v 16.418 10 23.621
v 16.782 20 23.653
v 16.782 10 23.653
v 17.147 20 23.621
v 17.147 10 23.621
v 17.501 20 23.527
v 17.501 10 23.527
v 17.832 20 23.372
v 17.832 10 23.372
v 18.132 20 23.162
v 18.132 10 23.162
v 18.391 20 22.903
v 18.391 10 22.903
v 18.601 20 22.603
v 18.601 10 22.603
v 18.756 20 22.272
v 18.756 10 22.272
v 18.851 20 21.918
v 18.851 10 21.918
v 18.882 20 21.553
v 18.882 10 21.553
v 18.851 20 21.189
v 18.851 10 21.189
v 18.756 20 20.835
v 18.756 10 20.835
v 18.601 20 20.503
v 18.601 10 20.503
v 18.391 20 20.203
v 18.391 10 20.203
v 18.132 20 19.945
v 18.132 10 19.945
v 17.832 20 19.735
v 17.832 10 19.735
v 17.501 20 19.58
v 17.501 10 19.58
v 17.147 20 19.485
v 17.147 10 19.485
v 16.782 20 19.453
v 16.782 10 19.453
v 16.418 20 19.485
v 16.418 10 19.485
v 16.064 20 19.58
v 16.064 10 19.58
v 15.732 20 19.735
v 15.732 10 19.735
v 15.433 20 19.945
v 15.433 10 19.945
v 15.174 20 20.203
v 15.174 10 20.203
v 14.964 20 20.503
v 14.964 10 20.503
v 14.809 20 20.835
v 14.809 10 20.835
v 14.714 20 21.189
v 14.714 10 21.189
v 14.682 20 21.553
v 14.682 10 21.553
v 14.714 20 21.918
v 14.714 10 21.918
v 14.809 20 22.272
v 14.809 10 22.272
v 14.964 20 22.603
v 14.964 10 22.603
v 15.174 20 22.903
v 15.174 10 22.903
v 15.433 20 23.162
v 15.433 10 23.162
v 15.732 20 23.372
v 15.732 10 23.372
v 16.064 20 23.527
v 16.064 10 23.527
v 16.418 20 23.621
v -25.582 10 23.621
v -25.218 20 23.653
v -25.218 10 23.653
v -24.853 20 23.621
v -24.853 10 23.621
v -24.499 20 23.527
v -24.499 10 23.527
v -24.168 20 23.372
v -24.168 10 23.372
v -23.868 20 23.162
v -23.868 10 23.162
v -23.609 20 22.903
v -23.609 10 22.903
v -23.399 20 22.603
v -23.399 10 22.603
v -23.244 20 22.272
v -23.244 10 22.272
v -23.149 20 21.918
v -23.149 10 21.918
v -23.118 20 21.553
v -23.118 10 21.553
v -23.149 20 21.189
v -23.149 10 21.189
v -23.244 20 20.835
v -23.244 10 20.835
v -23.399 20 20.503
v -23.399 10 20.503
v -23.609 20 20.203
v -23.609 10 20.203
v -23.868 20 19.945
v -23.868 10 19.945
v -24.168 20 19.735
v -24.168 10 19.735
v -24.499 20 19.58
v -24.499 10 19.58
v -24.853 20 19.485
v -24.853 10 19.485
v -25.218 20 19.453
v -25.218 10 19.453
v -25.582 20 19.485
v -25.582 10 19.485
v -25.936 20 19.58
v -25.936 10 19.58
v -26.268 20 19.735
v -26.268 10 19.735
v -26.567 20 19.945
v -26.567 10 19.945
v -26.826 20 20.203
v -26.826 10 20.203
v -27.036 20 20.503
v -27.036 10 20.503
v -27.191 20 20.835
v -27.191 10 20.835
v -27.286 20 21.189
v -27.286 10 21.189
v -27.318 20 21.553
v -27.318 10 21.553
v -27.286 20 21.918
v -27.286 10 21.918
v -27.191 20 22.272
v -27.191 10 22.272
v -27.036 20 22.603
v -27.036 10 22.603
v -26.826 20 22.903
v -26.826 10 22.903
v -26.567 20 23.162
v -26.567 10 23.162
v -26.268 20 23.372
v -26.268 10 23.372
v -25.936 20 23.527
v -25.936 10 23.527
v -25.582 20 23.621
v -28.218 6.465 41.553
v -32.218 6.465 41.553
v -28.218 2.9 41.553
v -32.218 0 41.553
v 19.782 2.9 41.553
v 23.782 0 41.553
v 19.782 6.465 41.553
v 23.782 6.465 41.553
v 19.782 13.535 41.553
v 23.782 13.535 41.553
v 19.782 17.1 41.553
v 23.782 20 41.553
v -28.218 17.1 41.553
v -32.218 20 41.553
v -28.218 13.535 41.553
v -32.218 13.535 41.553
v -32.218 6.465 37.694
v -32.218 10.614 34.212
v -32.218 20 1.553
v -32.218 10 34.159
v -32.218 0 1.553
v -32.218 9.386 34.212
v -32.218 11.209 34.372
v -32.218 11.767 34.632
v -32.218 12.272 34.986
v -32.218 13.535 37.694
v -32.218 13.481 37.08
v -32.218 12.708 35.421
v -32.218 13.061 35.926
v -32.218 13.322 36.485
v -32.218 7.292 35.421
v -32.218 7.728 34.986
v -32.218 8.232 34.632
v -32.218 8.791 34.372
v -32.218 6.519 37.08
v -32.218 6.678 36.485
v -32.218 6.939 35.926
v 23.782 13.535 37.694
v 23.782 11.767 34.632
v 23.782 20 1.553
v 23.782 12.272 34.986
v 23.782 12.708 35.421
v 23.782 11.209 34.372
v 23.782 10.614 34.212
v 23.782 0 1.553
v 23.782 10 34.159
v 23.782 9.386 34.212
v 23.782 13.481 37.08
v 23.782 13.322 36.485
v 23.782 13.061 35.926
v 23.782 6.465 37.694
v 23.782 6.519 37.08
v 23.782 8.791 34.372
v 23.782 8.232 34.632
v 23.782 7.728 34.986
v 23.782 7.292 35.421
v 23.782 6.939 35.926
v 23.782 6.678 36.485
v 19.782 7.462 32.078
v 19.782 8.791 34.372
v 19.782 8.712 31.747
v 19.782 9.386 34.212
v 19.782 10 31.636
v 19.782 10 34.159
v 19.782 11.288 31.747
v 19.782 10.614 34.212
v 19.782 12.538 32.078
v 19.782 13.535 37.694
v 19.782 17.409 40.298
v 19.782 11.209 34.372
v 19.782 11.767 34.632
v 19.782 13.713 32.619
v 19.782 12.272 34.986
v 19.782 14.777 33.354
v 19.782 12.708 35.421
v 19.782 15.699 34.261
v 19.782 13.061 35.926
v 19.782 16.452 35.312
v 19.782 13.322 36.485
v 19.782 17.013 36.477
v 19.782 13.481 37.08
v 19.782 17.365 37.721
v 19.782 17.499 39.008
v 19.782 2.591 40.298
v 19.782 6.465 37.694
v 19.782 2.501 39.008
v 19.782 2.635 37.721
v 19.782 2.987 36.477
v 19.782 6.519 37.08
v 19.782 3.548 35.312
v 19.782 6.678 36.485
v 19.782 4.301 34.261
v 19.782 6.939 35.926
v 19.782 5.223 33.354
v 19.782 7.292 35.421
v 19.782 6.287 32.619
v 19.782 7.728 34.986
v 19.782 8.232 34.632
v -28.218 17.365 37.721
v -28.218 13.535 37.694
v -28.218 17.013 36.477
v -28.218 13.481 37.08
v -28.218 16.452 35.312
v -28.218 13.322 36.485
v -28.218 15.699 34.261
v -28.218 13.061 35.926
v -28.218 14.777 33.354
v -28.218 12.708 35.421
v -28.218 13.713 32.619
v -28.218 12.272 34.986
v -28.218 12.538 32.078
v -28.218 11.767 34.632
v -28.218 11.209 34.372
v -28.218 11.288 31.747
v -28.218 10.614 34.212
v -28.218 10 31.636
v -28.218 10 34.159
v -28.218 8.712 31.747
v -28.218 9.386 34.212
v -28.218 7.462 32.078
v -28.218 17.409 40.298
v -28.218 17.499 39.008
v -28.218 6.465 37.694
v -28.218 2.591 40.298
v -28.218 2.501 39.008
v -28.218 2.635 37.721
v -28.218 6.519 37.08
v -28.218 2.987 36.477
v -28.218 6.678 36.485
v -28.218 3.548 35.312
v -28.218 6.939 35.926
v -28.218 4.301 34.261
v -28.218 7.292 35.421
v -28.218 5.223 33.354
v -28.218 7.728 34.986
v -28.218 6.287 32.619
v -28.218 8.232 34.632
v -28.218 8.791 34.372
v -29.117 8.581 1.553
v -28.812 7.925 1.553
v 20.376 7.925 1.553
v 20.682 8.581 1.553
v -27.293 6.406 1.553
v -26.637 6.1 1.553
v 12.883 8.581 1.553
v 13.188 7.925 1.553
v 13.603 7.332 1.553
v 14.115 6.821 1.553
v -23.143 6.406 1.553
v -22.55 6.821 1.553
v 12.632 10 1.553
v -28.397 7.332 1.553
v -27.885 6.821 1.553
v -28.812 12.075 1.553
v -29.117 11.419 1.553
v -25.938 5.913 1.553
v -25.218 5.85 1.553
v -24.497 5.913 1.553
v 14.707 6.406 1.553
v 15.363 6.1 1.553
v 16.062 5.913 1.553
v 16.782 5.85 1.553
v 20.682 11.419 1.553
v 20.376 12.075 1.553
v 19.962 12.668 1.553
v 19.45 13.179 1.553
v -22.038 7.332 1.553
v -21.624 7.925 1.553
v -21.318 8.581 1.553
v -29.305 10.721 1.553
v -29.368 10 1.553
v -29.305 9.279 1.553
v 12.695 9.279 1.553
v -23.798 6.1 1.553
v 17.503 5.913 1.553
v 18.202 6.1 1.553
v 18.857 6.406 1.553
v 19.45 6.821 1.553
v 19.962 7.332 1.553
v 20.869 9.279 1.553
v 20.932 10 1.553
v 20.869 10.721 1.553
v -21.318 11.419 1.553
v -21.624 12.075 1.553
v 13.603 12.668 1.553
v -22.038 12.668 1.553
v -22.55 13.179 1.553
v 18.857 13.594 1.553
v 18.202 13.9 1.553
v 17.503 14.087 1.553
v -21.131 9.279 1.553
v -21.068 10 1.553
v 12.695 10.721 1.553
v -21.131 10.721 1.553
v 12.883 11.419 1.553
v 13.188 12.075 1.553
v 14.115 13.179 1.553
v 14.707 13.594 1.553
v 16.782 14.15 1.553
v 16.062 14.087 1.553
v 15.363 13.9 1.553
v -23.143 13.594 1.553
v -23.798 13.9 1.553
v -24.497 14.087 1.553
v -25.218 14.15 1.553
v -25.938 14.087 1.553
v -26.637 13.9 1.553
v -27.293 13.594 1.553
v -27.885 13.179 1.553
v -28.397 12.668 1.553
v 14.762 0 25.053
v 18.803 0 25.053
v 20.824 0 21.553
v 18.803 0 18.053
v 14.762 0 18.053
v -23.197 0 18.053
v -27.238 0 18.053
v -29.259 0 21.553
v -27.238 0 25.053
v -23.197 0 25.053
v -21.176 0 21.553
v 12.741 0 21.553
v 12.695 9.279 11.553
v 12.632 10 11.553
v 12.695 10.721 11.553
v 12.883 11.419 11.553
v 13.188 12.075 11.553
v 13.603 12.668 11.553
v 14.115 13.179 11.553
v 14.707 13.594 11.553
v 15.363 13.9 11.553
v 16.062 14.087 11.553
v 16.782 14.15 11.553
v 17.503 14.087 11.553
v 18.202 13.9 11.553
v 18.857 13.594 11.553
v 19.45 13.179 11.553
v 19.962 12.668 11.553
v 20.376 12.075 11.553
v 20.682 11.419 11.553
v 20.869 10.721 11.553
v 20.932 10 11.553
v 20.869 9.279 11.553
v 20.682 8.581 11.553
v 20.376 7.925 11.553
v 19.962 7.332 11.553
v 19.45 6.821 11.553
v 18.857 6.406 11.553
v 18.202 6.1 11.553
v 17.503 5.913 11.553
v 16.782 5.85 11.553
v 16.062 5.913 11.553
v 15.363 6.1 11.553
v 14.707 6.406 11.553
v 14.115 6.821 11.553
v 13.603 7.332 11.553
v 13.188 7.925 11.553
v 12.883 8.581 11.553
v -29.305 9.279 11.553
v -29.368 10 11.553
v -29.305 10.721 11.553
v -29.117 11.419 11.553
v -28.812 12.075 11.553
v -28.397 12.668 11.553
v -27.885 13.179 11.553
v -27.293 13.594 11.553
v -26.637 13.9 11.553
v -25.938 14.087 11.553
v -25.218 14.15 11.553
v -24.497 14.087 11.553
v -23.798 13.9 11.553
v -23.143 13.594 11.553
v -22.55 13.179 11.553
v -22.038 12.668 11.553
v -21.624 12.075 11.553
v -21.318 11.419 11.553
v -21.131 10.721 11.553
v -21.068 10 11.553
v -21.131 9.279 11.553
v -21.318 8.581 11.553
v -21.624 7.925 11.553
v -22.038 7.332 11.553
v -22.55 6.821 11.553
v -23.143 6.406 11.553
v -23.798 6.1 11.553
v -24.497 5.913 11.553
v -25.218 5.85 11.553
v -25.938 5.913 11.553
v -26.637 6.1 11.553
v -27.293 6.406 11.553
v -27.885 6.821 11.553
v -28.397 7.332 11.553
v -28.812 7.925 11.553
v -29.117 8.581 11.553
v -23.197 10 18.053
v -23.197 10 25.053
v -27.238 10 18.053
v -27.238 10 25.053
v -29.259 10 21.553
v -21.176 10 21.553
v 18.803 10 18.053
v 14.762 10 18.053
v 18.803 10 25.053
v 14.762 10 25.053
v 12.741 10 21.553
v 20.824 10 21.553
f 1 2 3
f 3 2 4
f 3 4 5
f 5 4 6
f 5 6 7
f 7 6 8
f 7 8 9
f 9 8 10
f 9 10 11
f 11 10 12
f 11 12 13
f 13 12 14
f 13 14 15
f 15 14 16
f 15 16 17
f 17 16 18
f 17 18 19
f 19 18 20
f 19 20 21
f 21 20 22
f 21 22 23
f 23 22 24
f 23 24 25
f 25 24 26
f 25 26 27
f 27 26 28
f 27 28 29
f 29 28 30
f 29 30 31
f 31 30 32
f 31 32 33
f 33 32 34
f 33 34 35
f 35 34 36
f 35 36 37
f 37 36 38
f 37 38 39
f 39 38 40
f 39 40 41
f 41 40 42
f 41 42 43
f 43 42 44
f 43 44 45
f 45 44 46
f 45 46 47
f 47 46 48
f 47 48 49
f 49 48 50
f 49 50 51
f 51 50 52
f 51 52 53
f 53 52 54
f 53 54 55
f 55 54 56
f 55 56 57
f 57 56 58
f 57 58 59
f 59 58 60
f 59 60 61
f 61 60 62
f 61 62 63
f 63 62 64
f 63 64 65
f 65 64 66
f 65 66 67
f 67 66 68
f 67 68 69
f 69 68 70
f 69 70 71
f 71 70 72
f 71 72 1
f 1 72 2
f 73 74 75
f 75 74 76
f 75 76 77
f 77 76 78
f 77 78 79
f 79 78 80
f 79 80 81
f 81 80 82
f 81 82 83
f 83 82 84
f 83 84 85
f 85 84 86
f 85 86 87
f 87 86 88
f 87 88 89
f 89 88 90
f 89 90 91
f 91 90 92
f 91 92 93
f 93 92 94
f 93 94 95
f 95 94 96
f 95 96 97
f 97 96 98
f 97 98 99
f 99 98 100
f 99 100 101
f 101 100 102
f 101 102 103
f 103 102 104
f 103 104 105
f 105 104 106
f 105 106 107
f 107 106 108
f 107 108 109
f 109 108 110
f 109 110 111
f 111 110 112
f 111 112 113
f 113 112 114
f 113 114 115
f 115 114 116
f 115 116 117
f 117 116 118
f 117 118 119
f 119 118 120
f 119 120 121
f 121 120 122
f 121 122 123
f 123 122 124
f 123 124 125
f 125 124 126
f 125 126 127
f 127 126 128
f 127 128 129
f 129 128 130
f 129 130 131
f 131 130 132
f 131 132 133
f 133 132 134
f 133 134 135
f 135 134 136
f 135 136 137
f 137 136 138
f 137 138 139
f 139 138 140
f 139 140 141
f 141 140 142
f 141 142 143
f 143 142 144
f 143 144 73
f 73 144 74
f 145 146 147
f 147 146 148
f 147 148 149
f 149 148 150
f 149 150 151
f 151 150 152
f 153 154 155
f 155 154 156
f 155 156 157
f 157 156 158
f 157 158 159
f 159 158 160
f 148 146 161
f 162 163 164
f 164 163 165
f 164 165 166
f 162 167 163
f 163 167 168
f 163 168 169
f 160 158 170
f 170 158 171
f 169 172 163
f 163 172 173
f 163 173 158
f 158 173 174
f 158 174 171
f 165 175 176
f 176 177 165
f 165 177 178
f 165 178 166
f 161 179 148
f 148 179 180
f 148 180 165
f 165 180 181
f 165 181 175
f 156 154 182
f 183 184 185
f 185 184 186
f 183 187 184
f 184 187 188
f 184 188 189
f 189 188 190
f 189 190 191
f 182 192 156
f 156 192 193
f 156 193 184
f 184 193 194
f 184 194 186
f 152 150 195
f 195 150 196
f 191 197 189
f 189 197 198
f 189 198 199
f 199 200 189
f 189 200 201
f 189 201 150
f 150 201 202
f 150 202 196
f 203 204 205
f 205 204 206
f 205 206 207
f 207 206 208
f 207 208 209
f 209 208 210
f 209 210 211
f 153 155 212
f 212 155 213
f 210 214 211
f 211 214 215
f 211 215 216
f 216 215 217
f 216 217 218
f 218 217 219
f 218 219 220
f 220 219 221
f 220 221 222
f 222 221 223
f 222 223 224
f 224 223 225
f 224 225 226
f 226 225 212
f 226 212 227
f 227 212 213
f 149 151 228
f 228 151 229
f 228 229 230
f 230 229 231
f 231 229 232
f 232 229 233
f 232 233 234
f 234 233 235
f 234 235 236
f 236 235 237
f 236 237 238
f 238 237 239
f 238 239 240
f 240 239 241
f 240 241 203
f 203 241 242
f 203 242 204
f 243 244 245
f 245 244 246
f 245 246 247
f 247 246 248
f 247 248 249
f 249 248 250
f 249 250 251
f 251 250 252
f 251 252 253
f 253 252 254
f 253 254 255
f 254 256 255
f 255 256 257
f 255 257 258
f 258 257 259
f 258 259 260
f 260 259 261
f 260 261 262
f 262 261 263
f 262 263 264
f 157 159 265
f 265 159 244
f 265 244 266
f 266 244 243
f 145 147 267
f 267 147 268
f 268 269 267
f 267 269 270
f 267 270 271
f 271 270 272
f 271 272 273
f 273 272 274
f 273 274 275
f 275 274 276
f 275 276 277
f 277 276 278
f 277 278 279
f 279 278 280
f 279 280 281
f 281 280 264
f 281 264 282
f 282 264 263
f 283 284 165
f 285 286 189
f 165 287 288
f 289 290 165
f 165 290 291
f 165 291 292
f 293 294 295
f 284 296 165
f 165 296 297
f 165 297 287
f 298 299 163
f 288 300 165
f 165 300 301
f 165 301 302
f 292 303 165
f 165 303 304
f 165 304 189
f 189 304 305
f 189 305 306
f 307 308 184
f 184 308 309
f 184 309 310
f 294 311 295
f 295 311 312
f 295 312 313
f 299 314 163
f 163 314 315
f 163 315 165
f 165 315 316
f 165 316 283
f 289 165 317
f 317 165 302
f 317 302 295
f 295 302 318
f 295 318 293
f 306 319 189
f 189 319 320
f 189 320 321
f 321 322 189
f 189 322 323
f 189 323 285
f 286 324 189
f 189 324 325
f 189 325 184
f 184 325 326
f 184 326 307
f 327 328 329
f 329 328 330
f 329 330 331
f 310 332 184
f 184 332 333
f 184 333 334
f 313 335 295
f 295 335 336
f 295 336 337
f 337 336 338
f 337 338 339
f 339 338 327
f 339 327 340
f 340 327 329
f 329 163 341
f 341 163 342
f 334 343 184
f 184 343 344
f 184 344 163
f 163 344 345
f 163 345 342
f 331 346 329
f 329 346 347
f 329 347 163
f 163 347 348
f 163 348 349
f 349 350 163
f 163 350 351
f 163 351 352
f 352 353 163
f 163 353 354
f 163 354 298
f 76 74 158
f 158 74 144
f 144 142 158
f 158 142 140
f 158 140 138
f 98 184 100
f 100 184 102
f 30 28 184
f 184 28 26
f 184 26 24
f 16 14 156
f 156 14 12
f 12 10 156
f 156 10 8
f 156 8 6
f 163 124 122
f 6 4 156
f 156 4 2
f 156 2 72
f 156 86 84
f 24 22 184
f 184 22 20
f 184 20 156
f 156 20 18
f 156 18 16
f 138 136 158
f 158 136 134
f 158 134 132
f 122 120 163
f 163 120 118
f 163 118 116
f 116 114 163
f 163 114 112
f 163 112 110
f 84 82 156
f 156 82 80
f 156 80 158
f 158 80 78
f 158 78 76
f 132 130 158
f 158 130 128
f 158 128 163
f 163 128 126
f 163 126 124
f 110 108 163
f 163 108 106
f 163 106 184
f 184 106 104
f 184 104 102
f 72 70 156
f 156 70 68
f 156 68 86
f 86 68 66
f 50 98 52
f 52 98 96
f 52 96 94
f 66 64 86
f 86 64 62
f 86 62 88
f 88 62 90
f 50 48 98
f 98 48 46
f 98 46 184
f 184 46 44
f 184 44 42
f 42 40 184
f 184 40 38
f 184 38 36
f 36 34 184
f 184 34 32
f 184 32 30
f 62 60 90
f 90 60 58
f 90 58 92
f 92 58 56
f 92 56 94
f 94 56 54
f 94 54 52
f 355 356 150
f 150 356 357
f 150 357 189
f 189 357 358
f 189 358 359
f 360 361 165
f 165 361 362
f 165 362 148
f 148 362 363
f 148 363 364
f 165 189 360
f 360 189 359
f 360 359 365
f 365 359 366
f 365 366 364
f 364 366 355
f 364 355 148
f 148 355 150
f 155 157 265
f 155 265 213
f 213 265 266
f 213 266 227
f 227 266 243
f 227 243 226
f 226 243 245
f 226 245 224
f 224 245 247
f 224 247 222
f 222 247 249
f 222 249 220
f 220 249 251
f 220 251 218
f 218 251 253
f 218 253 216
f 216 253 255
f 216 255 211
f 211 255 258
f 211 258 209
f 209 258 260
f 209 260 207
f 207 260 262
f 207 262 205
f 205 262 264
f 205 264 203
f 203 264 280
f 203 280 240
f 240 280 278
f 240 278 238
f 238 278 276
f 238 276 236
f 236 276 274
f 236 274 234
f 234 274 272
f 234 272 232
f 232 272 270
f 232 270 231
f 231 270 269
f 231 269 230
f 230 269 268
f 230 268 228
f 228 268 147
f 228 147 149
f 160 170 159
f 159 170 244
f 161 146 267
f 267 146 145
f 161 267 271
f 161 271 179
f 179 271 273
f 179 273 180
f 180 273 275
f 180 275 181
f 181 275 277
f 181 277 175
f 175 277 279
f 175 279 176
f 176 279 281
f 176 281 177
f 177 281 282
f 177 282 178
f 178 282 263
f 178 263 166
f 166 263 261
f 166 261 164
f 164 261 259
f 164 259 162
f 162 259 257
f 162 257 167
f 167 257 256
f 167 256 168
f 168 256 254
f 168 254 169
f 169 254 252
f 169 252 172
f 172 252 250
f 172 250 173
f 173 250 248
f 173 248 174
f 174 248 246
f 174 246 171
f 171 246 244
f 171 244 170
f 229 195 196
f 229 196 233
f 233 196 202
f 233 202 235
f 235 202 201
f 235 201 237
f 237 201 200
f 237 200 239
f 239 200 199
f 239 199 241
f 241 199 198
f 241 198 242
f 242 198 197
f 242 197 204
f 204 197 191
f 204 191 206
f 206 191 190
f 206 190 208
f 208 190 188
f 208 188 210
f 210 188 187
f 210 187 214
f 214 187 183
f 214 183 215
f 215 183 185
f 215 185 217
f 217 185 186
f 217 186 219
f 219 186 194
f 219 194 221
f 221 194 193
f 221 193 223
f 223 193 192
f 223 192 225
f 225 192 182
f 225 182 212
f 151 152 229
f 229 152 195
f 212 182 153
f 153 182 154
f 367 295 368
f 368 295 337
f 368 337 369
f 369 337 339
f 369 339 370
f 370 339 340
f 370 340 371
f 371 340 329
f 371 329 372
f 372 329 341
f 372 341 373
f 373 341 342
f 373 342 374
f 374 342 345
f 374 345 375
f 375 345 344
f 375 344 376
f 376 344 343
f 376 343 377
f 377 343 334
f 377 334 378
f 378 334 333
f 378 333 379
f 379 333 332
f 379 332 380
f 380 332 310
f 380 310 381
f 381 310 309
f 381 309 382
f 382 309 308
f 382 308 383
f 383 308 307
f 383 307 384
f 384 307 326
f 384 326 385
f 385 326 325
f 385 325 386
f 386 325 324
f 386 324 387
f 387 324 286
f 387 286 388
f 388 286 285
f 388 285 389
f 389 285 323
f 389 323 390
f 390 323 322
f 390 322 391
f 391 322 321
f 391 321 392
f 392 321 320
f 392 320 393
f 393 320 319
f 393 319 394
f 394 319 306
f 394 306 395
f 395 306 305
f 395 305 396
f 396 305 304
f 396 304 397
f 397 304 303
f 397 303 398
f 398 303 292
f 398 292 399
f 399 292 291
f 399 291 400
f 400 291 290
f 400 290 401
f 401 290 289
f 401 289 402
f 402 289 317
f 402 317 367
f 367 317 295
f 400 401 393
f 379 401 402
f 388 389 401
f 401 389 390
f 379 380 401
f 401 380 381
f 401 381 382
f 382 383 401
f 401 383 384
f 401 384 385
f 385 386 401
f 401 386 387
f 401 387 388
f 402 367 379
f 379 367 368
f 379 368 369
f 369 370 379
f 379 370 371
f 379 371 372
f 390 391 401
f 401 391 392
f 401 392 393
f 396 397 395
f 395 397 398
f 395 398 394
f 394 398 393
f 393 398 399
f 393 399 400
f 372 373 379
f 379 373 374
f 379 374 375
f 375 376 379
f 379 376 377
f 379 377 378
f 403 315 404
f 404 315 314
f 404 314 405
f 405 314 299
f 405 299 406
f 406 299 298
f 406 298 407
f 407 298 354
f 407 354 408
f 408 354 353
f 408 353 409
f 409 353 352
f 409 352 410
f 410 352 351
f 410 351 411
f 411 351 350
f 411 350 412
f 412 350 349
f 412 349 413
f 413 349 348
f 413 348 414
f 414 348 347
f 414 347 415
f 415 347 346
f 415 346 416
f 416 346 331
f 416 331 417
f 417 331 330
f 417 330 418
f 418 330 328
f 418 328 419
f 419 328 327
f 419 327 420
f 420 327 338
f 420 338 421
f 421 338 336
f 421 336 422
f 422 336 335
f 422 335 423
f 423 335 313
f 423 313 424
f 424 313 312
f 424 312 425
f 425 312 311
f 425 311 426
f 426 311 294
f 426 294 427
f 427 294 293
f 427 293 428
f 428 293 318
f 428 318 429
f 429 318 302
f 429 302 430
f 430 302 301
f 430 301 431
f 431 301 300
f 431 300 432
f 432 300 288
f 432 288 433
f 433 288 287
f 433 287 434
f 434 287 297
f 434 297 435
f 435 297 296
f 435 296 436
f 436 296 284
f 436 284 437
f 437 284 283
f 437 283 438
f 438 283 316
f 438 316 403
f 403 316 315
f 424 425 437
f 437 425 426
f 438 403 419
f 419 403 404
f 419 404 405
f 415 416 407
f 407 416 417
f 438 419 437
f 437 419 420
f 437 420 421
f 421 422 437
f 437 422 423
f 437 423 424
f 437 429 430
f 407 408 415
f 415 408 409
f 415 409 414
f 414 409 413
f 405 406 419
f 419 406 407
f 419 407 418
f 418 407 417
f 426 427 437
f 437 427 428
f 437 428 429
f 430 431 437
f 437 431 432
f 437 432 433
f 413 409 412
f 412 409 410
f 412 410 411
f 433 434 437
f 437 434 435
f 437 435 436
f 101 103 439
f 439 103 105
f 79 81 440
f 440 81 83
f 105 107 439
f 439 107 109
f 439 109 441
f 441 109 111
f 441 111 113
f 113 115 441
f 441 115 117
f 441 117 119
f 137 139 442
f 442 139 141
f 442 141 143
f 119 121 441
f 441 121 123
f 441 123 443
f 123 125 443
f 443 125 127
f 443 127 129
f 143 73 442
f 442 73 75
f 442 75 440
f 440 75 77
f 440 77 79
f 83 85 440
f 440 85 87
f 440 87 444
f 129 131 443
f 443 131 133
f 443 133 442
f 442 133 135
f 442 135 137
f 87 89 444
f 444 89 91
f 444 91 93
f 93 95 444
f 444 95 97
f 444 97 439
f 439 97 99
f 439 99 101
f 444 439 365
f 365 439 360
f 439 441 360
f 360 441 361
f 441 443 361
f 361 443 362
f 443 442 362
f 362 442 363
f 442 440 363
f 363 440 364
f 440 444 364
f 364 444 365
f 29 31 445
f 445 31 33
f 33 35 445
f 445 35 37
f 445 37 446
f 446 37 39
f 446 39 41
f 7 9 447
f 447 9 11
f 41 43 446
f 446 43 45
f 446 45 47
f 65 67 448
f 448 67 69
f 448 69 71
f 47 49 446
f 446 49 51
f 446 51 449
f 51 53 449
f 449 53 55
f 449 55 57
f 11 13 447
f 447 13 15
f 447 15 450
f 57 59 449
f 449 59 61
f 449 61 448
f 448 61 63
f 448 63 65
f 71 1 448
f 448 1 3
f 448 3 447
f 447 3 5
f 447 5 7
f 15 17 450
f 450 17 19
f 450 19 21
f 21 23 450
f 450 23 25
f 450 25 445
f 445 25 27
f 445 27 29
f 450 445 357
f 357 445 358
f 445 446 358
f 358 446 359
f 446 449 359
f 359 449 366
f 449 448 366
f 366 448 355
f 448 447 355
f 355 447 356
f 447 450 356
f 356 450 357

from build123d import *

# Parameters (mm, degrees)
SKETCH_1_W               = 56
SKETCH_1_H               = 40
EXTRUDE_1_DEPTH          = 20
SKETCH_2_R               = 7.5
CUT_EXTRUDE_1_DEPTH      = 48
CUT_EXTRUDE_2_DEPTH      = 70.503098378
CUT_EXTRUDE_2_DEPTH_BACK = 48
SKETCH_5_R               = 4.15
CUT_EXTRUDE_3_DEPTH      = 10
SKETCH_6_R               = 2.1
CUT_EXTRUDE_4_DEPTH      = 57.255246128
CUT_EXTRUDE_5_DEPTH      = 10


with BuildPart() as part:
    # Эскиз1 → Бобышка-Вытянуть1 (new body)
    with BuildSketch(Plane(origin=(0, 0, 0), x_dir=(1, 0, 0), z_dir=(0, 1, 0))):
        with Locations((-4.217573352, -21.553347449)):
            Rectangle(SKETCH_1_W, SKETCH_1_H)
    extrude(amount=EXTRUDE_1_DEPTH)

    # Эскиз2 → Вырез-Вытянуть1 (cut)
    with BuildSketch(Plane.ZY.offset(28.217573352)):
        with Locations((39.13573239, 10)):
            Circle(SKETCH_2_R)
    extrude(amount=-CUT_EXTRUDE_1_DEPTH, mode=Mode.SUBTRACT)

    # Эскиз4 → Вырез-Вытянуть2 (cut, two sides: drawn at the far end of the back side and taken through both)
    with BuildSketch(Plane.ZY.offset(-19.782426648).offset(-CUT_EXTRUDE_2_DEPTH_BACK)):
        with BuildLine():
            Line((37.693734465, 13.535), (41.553347449, 13.535))
            Line((41.553347449, 13.535), (41.553347449, 6.465))
            Line((41.553347449, 6.465), (37.693734465, 6.465))
            ThreePointArc((37.693734465, 6.465), (34.158734465, 10), (37.693734465, 13.535))
        make_face()
    extrude(amount=CUT_EXTRUDE_2_DEPTH + CUT_EXTRUDE_2_DEPTH_BACK, mode=Mode.SUBTRACT)

    # Эскиз5 → Вырез-Вытянуть3 (cut)
    with BuildSketch(Plane(origin=(0, 0, 1.553347449), x_dir=(-1, 0, 0), z_dir=(0, 0, -1))):
        with Locations((-16.782426648, 10)):
            Circle(SKETCH_5_R)
        with Locations((25.217573352, 10)):
            Circle(SKETCH_5_R)
    extrude(amount=-CUT_EXTRUDE_3_DEPTH, mode=Mode.SUBTRACT)

    # Эскиз6 → Вырез-Вытянуть4 (cut, through all)
    with BuildSketch(Plane(origin=(0, 20, 0), x_dir=(1, 0, 0), z_dir=(0, 1, 0))):
        with Locations(Location((-25.217573352, -21.553347449, 0), (0, 0, 270))):
            Circle(SKETCH_6_R)
        with Locations(Location((16.782426648, -21.553347449, 0), (0, 0, 270))):
            Circle(SKETCH_6_R)
    extrude(amount=-CUT_EXTRUDE_4_DEPTH, mode=Mode.SUBTRACT)

    # Эскиз7 → Вырез-Вытянуть5 (cut)
    with BuildSketch(Plane.XZ):
        Polygon((-21.176121468, 21.553347449), (-23.19684741, 25.053347449), (-27.238299295, 25.053347449), (-29.259025237, 21.553347449), (-27.238299295, 18.053347449), (-23.19684741, 18.053347449), align=None)
        Polygon((20.823878532, 21.553347449), (18.80315259, 25.053347449), (14.761700705, 25.053347449), (12.740974763, 21.553347449), (14.761700705, 18.053347449), (18.80315259, 18.053347449), align=None)
    extrude(amount=-CUT_EXTRUDE_5_DEPTH, mode=Mode.SUBTRACT)


solid = part.part
